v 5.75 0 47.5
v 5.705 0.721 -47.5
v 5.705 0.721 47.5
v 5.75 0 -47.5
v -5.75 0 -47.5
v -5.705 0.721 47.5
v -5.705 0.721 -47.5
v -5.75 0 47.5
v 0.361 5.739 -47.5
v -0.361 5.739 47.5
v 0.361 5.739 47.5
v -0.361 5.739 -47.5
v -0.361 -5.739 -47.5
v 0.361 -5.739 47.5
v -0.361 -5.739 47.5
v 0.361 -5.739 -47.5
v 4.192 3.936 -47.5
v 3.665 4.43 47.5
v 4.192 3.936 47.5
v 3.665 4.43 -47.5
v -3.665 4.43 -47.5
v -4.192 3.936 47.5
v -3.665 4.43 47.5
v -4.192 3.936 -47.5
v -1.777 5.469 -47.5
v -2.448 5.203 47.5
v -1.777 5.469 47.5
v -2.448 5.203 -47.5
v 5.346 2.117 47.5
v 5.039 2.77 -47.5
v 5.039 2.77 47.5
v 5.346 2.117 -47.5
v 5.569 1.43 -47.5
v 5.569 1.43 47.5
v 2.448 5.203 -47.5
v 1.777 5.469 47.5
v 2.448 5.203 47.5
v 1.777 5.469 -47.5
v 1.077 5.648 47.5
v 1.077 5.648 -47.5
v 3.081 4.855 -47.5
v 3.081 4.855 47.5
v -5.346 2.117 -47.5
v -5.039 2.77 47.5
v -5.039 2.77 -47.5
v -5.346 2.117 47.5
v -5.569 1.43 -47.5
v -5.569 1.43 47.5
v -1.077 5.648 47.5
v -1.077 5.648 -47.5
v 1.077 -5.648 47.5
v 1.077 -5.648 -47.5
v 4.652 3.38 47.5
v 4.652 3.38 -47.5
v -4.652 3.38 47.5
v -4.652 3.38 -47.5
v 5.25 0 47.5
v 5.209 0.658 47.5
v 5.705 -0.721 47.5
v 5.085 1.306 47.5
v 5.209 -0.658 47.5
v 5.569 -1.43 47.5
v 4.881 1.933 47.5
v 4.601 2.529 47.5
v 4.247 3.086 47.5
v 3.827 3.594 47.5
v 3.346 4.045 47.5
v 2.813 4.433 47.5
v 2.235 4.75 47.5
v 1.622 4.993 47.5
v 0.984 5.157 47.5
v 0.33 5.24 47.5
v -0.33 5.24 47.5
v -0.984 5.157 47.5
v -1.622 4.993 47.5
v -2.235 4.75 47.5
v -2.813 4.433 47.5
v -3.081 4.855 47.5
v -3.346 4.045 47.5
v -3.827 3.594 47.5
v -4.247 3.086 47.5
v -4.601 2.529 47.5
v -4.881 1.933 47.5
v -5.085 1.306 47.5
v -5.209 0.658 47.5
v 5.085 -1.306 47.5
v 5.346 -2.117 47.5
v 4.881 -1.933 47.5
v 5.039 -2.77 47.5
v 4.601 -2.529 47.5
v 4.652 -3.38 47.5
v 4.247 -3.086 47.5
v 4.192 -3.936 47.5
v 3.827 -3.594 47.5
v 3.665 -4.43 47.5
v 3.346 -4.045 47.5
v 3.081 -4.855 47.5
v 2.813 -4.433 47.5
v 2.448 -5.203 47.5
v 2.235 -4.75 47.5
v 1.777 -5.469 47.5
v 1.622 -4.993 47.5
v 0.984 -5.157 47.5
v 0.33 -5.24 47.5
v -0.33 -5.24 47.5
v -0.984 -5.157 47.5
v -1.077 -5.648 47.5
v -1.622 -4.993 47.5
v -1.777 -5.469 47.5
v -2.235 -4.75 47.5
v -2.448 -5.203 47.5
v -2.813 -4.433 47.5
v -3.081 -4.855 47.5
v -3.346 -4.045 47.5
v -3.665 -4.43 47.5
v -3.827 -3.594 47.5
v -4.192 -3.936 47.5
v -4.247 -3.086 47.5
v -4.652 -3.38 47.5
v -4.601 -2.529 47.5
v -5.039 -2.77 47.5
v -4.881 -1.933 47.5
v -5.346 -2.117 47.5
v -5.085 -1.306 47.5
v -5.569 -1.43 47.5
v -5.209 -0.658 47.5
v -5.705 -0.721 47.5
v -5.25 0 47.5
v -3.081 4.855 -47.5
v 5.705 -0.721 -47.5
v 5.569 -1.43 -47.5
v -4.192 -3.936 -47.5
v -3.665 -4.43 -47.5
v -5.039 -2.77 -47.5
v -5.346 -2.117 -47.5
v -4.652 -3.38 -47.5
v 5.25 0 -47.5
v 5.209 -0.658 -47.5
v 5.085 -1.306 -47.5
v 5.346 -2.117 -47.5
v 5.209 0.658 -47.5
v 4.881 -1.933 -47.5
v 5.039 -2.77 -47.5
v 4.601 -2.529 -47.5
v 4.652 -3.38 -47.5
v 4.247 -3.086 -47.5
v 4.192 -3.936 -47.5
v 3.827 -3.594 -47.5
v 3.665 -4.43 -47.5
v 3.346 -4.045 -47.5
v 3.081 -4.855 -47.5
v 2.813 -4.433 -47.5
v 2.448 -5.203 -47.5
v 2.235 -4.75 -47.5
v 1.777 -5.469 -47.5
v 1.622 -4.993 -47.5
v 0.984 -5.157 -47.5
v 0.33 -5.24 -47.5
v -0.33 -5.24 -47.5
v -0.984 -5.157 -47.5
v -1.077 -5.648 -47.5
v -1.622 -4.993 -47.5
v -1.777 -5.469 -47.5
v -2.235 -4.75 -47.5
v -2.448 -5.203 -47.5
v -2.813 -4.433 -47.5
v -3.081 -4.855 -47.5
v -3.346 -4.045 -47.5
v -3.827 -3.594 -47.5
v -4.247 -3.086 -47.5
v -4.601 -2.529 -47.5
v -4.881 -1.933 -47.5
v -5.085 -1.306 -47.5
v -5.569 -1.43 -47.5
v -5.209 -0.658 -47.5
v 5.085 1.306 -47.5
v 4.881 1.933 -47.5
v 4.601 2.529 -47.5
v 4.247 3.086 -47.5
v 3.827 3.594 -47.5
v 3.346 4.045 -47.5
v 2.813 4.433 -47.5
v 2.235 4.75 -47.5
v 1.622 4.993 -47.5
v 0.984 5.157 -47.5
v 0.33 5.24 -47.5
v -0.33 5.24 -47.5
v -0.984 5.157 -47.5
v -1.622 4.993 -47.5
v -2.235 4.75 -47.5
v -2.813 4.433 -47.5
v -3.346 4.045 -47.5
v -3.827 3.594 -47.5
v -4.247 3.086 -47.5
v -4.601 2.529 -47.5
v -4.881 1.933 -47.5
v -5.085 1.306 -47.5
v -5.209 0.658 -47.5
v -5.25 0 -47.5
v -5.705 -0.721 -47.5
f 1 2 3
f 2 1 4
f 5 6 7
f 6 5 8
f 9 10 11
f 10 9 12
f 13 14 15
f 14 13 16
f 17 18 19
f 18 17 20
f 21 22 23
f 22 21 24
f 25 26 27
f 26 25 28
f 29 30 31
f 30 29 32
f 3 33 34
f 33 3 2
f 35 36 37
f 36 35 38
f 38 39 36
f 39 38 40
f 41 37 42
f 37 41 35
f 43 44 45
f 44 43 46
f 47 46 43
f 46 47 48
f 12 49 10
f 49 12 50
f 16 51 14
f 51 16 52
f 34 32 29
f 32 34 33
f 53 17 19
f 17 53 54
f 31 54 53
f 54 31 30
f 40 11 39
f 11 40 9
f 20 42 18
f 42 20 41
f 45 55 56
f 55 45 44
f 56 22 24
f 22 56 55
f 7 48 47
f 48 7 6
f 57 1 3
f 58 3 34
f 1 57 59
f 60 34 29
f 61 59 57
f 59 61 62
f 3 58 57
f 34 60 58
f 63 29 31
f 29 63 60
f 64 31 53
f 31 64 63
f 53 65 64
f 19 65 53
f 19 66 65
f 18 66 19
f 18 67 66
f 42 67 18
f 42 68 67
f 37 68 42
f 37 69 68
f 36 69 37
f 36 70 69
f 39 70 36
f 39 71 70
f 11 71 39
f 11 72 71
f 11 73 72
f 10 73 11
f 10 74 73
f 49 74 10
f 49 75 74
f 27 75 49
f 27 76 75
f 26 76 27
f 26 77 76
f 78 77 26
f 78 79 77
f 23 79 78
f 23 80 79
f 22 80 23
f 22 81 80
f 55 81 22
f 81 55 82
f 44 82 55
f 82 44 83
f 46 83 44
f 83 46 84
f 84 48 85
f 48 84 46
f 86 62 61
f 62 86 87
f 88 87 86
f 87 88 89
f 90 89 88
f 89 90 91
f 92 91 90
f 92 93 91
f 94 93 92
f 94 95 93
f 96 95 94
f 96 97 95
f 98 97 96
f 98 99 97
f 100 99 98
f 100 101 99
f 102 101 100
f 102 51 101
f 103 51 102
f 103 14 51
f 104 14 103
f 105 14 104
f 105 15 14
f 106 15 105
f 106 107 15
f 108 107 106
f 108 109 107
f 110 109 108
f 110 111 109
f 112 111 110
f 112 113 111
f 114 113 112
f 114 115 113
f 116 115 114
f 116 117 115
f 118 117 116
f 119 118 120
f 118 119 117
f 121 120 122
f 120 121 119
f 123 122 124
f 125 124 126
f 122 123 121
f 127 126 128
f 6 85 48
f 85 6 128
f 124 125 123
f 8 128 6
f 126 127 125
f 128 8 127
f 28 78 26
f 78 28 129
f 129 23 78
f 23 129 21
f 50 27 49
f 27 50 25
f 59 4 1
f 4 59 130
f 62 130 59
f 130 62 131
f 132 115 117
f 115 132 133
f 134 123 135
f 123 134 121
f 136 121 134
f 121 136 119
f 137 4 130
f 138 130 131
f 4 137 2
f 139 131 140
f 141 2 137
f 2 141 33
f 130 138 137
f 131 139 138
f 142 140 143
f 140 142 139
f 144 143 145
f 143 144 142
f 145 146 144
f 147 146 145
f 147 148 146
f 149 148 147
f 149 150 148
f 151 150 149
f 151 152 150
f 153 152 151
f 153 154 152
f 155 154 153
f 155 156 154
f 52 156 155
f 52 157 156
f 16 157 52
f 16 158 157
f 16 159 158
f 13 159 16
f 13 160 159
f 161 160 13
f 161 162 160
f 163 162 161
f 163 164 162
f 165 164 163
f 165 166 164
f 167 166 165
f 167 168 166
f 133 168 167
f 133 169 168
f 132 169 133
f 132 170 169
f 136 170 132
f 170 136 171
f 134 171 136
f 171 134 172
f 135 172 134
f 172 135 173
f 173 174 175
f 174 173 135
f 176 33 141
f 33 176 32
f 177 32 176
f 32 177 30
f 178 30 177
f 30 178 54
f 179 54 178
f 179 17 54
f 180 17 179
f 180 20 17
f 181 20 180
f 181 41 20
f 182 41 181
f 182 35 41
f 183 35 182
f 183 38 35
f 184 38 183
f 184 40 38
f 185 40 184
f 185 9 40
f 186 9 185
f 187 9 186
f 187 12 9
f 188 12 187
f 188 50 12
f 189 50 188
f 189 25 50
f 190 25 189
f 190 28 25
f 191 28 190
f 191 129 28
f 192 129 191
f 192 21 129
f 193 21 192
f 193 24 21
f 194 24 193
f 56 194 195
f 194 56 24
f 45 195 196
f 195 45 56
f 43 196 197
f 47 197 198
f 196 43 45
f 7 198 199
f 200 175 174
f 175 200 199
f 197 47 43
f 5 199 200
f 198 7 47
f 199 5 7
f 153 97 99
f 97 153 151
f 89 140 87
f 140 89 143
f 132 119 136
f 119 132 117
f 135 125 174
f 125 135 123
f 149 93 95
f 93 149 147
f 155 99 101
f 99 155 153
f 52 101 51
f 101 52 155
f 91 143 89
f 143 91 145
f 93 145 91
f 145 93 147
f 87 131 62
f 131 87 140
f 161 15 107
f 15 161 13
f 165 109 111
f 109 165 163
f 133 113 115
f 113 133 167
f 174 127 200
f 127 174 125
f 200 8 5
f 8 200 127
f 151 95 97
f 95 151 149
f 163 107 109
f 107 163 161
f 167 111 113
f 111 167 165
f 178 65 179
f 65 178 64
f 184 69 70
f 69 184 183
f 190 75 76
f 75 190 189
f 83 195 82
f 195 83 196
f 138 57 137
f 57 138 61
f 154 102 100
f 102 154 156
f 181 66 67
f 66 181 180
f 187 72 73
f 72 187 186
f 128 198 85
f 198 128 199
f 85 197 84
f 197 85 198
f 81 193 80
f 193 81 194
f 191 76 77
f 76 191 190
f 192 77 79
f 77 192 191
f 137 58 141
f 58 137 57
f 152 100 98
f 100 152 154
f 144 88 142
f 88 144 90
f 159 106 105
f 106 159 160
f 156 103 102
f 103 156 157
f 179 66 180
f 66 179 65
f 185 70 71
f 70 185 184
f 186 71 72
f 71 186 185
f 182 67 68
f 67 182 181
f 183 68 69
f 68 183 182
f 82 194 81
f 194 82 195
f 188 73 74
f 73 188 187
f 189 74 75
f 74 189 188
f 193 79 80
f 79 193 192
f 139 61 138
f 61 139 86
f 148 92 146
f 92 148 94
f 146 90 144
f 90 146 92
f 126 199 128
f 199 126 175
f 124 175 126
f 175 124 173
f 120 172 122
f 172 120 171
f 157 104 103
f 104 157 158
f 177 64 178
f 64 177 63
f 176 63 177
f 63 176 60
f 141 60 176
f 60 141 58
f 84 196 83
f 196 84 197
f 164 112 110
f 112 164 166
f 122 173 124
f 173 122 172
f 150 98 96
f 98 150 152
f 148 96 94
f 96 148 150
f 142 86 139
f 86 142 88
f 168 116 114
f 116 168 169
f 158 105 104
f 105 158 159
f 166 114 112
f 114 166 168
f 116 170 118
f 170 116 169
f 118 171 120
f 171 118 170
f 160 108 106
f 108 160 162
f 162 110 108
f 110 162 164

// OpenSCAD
$fn = 50;


difference() {
	union() {
		translate(v = [0, 0, -47.5000000000]) {
			cylinder(h = 95, r = 5.7500000000);
		}
	}
	union() {
		translate(v = [0, 0, -100.0000000000]) {
			cylinder(h = 200, r = 5.2500000000);
		}
	}
}
